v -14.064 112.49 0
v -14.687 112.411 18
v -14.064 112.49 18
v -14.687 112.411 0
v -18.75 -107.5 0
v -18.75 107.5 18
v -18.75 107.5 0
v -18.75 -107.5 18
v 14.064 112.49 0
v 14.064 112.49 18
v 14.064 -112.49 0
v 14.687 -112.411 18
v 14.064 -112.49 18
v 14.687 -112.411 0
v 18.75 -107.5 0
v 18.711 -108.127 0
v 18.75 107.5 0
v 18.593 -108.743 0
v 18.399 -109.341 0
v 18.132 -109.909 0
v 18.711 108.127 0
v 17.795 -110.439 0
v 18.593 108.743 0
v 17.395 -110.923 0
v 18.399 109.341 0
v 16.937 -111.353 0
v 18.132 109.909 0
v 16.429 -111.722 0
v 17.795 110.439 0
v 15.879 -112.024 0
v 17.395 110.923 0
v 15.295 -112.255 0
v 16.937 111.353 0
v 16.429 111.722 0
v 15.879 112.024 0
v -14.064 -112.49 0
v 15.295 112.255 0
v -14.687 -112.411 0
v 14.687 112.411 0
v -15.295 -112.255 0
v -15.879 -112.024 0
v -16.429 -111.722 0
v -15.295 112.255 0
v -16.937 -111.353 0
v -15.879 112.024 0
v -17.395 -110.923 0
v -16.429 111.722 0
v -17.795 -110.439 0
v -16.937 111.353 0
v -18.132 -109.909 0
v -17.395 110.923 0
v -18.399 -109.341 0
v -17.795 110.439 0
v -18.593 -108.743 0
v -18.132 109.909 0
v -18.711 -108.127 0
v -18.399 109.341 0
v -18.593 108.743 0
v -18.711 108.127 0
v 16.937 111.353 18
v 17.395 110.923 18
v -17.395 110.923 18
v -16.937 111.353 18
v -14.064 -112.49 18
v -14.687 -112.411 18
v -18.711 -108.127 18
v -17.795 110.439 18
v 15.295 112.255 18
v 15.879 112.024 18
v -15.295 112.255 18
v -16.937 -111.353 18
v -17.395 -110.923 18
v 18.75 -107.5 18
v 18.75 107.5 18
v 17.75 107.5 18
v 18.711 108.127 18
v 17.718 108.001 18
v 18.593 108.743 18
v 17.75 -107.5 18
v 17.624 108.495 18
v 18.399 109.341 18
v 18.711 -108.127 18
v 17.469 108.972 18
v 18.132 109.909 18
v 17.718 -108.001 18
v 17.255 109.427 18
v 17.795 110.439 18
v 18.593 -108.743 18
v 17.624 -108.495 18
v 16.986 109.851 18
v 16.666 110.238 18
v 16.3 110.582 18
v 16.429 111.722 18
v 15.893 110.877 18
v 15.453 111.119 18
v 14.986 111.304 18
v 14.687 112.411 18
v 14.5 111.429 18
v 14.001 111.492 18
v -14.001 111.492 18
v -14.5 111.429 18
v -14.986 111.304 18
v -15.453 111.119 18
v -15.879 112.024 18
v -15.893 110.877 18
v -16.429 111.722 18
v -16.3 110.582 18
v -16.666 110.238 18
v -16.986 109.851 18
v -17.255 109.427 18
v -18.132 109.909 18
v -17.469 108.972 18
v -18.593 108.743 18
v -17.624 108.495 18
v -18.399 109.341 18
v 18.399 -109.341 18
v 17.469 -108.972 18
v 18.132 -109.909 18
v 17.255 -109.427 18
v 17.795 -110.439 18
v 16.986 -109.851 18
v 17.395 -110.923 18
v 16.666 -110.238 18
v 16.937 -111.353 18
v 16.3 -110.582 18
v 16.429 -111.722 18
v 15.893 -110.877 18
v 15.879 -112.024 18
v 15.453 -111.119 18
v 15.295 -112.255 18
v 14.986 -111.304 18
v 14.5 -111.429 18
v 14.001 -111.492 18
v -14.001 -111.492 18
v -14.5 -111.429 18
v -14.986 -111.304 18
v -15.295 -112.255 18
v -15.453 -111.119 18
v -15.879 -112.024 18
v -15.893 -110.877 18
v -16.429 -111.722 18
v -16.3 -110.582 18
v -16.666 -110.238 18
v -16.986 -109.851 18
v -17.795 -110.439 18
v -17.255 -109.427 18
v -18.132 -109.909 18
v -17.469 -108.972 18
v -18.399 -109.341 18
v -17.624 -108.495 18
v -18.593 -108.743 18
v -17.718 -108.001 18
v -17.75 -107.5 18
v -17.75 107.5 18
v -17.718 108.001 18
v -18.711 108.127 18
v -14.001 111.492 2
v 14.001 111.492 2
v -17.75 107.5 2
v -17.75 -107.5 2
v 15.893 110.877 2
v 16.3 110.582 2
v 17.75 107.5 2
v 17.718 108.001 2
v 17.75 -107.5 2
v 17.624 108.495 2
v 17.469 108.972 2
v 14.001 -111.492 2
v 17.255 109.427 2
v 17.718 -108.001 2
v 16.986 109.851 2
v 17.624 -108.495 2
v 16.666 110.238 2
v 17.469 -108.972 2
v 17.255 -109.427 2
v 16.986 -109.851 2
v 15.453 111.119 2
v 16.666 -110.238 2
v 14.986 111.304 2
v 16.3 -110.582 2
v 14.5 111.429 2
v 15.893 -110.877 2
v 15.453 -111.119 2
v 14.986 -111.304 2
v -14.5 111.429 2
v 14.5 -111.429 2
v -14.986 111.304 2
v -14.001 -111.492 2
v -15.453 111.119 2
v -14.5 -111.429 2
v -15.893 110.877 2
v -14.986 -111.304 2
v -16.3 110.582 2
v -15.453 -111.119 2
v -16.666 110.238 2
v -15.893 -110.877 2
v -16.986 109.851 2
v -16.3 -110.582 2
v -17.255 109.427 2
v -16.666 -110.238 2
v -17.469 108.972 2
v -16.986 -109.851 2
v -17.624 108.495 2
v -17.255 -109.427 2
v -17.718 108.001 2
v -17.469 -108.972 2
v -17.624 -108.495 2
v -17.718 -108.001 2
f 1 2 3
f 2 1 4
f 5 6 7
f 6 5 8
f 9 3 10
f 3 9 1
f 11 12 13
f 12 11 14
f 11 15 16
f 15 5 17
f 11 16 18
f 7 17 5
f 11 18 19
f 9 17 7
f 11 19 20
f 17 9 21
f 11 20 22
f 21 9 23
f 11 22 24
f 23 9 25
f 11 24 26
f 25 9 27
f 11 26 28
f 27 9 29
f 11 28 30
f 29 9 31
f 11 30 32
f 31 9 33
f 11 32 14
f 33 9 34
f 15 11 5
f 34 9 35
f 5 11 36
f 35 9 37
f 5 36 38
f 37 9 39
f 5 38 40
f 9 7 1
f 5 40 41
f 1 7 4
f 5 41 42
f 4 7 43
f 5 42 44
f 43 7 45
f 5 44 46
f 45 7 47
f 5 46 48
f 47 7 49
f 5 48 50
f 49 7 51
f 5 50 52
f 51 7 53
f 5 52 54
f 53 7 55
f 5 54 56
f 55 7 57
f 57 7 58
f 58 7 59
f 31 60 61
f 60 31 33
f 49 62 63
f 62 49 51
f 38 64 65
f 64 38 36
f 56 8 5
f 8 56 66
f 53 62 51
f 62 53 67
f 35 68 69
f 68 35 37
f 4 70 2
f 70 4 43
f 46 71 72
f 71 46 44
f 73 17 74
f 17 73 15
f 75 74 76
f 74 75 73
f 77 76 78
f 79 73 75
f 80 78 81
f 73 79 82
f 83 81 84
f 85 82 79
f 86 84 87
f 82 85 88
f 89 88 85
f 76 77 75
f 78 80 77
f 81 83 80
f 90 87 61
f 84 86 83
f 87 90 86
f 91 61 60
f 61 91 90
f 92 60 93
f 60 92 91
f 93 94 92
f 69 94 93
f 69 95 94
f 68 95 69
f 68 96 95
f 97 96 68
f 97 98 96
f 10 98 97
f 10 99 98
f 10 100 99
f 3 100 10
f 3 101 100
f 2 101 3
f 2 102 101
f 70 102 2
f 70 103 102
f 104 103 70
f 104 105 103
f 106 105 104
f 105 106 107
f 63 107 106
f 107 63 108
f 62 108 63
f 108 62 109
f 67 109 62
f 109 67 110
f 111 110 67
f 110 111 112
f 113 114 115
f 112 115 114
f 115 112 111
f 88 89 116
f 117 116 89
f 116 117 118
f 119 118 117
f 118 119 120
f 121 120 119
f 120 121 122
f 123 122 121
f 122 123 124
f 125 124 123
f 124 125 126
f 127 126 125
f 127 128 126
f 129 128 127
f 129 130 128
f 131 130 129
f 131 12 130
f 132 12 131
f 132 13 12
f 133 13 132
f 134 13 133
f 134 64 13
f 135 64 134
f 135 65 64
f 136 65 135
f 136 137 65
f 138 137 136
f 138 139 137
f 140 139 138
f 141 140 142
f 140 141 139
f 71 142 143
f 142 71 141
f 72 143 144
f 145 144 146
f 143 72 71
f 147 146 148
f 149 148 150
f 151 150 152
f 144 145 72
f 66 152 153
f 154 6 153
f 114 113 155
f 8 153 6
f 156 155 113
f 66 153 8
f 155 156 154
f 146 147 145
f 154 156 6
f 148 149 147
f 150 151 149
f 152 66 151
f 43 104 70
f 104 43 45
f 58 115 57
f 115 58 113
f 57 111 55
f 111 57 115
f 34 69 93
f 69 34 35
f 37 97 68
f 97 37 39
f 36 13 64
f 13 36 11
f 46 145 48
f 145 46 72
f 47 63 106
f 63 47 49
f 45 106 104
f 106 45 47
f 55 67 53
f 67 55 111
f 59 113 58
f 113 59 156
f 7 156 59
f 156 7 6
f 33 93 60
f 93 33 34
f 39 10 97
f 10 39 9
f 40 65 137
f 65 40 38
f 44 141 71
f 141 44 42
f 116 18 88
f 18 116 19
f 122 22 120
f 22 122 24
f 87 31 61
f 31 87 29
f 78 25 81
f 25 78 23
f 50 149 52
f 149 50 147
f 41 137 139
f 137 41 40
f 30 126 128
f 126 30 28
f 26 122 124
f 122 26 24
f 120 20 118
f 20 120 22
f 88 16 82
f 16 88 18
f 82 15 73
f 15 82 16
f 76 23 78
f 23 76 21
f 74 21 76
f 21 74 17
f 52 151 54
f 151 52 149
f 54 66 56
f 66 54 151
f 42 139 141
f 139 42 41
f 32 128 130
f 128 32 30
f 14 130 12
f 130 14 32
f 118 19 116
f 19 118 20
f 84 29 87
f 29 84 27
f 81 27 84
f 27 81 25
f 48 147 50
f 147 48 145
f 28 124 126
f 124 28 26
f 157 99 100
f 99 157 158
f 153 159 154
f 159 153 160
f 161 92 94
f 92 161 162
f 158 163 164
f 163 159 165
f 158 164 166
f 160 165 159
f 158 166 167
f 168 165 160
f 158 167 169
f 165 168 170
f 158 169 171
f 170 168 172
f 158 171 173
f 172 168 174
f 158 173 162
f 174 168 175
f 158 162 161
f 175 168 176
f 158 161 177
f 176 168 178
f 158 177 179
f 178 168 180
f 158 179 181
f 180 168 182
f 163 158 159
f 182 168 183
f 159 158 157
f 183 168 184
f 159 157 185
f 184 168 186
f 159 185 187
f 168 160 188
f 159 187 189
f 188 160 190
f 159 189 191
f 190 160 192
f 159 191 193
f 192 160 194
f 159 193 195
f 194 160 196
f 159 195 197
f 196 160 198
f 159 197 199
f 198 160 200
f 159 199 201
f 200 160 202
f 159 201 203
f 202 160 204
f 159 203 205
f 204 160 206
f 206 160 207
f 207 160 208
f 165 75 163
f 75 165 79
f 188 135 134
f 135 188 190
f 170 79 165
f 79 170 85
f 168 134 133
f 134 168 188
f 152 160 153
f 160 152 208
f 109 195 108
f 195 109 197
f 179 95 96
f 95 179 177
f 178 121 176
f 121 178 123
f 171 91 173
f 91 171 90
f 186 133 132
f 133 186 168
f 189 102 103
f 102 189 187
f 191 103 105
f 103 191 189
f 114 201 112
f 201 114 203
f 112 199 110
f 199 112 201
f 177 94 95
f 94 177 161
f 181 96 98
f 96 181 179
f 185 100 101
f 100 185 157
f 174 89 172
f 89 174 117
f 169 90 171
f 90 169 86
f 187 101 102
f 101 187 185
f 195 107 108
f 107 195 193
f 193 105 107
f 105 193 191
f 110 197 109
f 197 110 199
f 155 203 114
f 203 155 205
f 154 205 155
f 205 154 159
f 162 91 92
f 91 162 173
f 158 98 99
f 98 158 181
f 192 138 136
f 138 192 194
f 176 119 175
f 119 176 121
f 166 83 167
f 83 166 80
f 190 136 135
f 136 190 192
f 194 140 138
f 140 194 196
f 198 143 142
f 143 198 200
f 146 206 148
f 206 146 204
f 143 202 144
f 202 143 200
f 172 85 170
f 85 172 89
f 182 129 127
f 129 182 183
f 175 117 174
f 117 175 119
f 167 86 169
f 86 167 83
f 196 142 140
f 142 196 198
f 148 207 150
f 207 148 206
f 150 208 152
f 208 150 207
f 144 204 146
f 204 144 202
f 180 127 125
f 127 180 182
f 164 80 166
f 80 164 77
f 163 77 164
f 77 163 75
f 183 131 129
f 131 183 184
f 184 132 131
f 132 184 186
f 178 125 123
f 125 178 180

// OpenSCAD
$fn = 50;


difference() {
	union() {
		hull() {
			translate(v = [-13.7500000000, 107.5000000000, 0]) {
				cylinder(h = 18, r = 5);
			}
			translate(v = [13.7500000000, 107.5000000000, 0]) {
				cylinder(h = 18, r = 5);
			}
			translate(v = [-13.7500000000, -107.5000000000, 0]) {
				cylinder(h = 18, r = 5);
			}
			translate(v = [13.7500000000, -107.5000000000, 0]) {
				cylinder(h = 18, r = 5);
			}
		}
	}
	union() {
		translate(v = [0, 0, 2]) {
			hull() {
				translate(v = [-13.7500000000, 107.5000000000, 0]) {
					cylinder(h = 16, r = 4);
				}
				translate(v = [13.7500000000, 107.5000000000, 0]) {
					cylinder(h = 16, r = 4);
				}
				translate(v = [-13.7500000000, -107.5000000000, 0]) {
					cylinder(h = 16, r = 4);
				}
				translate(v = [13.7500000000, -107.5000000000, 0]) {
					cylinder(h = 16, r = 4);
				}
			}
		}
	}
}
